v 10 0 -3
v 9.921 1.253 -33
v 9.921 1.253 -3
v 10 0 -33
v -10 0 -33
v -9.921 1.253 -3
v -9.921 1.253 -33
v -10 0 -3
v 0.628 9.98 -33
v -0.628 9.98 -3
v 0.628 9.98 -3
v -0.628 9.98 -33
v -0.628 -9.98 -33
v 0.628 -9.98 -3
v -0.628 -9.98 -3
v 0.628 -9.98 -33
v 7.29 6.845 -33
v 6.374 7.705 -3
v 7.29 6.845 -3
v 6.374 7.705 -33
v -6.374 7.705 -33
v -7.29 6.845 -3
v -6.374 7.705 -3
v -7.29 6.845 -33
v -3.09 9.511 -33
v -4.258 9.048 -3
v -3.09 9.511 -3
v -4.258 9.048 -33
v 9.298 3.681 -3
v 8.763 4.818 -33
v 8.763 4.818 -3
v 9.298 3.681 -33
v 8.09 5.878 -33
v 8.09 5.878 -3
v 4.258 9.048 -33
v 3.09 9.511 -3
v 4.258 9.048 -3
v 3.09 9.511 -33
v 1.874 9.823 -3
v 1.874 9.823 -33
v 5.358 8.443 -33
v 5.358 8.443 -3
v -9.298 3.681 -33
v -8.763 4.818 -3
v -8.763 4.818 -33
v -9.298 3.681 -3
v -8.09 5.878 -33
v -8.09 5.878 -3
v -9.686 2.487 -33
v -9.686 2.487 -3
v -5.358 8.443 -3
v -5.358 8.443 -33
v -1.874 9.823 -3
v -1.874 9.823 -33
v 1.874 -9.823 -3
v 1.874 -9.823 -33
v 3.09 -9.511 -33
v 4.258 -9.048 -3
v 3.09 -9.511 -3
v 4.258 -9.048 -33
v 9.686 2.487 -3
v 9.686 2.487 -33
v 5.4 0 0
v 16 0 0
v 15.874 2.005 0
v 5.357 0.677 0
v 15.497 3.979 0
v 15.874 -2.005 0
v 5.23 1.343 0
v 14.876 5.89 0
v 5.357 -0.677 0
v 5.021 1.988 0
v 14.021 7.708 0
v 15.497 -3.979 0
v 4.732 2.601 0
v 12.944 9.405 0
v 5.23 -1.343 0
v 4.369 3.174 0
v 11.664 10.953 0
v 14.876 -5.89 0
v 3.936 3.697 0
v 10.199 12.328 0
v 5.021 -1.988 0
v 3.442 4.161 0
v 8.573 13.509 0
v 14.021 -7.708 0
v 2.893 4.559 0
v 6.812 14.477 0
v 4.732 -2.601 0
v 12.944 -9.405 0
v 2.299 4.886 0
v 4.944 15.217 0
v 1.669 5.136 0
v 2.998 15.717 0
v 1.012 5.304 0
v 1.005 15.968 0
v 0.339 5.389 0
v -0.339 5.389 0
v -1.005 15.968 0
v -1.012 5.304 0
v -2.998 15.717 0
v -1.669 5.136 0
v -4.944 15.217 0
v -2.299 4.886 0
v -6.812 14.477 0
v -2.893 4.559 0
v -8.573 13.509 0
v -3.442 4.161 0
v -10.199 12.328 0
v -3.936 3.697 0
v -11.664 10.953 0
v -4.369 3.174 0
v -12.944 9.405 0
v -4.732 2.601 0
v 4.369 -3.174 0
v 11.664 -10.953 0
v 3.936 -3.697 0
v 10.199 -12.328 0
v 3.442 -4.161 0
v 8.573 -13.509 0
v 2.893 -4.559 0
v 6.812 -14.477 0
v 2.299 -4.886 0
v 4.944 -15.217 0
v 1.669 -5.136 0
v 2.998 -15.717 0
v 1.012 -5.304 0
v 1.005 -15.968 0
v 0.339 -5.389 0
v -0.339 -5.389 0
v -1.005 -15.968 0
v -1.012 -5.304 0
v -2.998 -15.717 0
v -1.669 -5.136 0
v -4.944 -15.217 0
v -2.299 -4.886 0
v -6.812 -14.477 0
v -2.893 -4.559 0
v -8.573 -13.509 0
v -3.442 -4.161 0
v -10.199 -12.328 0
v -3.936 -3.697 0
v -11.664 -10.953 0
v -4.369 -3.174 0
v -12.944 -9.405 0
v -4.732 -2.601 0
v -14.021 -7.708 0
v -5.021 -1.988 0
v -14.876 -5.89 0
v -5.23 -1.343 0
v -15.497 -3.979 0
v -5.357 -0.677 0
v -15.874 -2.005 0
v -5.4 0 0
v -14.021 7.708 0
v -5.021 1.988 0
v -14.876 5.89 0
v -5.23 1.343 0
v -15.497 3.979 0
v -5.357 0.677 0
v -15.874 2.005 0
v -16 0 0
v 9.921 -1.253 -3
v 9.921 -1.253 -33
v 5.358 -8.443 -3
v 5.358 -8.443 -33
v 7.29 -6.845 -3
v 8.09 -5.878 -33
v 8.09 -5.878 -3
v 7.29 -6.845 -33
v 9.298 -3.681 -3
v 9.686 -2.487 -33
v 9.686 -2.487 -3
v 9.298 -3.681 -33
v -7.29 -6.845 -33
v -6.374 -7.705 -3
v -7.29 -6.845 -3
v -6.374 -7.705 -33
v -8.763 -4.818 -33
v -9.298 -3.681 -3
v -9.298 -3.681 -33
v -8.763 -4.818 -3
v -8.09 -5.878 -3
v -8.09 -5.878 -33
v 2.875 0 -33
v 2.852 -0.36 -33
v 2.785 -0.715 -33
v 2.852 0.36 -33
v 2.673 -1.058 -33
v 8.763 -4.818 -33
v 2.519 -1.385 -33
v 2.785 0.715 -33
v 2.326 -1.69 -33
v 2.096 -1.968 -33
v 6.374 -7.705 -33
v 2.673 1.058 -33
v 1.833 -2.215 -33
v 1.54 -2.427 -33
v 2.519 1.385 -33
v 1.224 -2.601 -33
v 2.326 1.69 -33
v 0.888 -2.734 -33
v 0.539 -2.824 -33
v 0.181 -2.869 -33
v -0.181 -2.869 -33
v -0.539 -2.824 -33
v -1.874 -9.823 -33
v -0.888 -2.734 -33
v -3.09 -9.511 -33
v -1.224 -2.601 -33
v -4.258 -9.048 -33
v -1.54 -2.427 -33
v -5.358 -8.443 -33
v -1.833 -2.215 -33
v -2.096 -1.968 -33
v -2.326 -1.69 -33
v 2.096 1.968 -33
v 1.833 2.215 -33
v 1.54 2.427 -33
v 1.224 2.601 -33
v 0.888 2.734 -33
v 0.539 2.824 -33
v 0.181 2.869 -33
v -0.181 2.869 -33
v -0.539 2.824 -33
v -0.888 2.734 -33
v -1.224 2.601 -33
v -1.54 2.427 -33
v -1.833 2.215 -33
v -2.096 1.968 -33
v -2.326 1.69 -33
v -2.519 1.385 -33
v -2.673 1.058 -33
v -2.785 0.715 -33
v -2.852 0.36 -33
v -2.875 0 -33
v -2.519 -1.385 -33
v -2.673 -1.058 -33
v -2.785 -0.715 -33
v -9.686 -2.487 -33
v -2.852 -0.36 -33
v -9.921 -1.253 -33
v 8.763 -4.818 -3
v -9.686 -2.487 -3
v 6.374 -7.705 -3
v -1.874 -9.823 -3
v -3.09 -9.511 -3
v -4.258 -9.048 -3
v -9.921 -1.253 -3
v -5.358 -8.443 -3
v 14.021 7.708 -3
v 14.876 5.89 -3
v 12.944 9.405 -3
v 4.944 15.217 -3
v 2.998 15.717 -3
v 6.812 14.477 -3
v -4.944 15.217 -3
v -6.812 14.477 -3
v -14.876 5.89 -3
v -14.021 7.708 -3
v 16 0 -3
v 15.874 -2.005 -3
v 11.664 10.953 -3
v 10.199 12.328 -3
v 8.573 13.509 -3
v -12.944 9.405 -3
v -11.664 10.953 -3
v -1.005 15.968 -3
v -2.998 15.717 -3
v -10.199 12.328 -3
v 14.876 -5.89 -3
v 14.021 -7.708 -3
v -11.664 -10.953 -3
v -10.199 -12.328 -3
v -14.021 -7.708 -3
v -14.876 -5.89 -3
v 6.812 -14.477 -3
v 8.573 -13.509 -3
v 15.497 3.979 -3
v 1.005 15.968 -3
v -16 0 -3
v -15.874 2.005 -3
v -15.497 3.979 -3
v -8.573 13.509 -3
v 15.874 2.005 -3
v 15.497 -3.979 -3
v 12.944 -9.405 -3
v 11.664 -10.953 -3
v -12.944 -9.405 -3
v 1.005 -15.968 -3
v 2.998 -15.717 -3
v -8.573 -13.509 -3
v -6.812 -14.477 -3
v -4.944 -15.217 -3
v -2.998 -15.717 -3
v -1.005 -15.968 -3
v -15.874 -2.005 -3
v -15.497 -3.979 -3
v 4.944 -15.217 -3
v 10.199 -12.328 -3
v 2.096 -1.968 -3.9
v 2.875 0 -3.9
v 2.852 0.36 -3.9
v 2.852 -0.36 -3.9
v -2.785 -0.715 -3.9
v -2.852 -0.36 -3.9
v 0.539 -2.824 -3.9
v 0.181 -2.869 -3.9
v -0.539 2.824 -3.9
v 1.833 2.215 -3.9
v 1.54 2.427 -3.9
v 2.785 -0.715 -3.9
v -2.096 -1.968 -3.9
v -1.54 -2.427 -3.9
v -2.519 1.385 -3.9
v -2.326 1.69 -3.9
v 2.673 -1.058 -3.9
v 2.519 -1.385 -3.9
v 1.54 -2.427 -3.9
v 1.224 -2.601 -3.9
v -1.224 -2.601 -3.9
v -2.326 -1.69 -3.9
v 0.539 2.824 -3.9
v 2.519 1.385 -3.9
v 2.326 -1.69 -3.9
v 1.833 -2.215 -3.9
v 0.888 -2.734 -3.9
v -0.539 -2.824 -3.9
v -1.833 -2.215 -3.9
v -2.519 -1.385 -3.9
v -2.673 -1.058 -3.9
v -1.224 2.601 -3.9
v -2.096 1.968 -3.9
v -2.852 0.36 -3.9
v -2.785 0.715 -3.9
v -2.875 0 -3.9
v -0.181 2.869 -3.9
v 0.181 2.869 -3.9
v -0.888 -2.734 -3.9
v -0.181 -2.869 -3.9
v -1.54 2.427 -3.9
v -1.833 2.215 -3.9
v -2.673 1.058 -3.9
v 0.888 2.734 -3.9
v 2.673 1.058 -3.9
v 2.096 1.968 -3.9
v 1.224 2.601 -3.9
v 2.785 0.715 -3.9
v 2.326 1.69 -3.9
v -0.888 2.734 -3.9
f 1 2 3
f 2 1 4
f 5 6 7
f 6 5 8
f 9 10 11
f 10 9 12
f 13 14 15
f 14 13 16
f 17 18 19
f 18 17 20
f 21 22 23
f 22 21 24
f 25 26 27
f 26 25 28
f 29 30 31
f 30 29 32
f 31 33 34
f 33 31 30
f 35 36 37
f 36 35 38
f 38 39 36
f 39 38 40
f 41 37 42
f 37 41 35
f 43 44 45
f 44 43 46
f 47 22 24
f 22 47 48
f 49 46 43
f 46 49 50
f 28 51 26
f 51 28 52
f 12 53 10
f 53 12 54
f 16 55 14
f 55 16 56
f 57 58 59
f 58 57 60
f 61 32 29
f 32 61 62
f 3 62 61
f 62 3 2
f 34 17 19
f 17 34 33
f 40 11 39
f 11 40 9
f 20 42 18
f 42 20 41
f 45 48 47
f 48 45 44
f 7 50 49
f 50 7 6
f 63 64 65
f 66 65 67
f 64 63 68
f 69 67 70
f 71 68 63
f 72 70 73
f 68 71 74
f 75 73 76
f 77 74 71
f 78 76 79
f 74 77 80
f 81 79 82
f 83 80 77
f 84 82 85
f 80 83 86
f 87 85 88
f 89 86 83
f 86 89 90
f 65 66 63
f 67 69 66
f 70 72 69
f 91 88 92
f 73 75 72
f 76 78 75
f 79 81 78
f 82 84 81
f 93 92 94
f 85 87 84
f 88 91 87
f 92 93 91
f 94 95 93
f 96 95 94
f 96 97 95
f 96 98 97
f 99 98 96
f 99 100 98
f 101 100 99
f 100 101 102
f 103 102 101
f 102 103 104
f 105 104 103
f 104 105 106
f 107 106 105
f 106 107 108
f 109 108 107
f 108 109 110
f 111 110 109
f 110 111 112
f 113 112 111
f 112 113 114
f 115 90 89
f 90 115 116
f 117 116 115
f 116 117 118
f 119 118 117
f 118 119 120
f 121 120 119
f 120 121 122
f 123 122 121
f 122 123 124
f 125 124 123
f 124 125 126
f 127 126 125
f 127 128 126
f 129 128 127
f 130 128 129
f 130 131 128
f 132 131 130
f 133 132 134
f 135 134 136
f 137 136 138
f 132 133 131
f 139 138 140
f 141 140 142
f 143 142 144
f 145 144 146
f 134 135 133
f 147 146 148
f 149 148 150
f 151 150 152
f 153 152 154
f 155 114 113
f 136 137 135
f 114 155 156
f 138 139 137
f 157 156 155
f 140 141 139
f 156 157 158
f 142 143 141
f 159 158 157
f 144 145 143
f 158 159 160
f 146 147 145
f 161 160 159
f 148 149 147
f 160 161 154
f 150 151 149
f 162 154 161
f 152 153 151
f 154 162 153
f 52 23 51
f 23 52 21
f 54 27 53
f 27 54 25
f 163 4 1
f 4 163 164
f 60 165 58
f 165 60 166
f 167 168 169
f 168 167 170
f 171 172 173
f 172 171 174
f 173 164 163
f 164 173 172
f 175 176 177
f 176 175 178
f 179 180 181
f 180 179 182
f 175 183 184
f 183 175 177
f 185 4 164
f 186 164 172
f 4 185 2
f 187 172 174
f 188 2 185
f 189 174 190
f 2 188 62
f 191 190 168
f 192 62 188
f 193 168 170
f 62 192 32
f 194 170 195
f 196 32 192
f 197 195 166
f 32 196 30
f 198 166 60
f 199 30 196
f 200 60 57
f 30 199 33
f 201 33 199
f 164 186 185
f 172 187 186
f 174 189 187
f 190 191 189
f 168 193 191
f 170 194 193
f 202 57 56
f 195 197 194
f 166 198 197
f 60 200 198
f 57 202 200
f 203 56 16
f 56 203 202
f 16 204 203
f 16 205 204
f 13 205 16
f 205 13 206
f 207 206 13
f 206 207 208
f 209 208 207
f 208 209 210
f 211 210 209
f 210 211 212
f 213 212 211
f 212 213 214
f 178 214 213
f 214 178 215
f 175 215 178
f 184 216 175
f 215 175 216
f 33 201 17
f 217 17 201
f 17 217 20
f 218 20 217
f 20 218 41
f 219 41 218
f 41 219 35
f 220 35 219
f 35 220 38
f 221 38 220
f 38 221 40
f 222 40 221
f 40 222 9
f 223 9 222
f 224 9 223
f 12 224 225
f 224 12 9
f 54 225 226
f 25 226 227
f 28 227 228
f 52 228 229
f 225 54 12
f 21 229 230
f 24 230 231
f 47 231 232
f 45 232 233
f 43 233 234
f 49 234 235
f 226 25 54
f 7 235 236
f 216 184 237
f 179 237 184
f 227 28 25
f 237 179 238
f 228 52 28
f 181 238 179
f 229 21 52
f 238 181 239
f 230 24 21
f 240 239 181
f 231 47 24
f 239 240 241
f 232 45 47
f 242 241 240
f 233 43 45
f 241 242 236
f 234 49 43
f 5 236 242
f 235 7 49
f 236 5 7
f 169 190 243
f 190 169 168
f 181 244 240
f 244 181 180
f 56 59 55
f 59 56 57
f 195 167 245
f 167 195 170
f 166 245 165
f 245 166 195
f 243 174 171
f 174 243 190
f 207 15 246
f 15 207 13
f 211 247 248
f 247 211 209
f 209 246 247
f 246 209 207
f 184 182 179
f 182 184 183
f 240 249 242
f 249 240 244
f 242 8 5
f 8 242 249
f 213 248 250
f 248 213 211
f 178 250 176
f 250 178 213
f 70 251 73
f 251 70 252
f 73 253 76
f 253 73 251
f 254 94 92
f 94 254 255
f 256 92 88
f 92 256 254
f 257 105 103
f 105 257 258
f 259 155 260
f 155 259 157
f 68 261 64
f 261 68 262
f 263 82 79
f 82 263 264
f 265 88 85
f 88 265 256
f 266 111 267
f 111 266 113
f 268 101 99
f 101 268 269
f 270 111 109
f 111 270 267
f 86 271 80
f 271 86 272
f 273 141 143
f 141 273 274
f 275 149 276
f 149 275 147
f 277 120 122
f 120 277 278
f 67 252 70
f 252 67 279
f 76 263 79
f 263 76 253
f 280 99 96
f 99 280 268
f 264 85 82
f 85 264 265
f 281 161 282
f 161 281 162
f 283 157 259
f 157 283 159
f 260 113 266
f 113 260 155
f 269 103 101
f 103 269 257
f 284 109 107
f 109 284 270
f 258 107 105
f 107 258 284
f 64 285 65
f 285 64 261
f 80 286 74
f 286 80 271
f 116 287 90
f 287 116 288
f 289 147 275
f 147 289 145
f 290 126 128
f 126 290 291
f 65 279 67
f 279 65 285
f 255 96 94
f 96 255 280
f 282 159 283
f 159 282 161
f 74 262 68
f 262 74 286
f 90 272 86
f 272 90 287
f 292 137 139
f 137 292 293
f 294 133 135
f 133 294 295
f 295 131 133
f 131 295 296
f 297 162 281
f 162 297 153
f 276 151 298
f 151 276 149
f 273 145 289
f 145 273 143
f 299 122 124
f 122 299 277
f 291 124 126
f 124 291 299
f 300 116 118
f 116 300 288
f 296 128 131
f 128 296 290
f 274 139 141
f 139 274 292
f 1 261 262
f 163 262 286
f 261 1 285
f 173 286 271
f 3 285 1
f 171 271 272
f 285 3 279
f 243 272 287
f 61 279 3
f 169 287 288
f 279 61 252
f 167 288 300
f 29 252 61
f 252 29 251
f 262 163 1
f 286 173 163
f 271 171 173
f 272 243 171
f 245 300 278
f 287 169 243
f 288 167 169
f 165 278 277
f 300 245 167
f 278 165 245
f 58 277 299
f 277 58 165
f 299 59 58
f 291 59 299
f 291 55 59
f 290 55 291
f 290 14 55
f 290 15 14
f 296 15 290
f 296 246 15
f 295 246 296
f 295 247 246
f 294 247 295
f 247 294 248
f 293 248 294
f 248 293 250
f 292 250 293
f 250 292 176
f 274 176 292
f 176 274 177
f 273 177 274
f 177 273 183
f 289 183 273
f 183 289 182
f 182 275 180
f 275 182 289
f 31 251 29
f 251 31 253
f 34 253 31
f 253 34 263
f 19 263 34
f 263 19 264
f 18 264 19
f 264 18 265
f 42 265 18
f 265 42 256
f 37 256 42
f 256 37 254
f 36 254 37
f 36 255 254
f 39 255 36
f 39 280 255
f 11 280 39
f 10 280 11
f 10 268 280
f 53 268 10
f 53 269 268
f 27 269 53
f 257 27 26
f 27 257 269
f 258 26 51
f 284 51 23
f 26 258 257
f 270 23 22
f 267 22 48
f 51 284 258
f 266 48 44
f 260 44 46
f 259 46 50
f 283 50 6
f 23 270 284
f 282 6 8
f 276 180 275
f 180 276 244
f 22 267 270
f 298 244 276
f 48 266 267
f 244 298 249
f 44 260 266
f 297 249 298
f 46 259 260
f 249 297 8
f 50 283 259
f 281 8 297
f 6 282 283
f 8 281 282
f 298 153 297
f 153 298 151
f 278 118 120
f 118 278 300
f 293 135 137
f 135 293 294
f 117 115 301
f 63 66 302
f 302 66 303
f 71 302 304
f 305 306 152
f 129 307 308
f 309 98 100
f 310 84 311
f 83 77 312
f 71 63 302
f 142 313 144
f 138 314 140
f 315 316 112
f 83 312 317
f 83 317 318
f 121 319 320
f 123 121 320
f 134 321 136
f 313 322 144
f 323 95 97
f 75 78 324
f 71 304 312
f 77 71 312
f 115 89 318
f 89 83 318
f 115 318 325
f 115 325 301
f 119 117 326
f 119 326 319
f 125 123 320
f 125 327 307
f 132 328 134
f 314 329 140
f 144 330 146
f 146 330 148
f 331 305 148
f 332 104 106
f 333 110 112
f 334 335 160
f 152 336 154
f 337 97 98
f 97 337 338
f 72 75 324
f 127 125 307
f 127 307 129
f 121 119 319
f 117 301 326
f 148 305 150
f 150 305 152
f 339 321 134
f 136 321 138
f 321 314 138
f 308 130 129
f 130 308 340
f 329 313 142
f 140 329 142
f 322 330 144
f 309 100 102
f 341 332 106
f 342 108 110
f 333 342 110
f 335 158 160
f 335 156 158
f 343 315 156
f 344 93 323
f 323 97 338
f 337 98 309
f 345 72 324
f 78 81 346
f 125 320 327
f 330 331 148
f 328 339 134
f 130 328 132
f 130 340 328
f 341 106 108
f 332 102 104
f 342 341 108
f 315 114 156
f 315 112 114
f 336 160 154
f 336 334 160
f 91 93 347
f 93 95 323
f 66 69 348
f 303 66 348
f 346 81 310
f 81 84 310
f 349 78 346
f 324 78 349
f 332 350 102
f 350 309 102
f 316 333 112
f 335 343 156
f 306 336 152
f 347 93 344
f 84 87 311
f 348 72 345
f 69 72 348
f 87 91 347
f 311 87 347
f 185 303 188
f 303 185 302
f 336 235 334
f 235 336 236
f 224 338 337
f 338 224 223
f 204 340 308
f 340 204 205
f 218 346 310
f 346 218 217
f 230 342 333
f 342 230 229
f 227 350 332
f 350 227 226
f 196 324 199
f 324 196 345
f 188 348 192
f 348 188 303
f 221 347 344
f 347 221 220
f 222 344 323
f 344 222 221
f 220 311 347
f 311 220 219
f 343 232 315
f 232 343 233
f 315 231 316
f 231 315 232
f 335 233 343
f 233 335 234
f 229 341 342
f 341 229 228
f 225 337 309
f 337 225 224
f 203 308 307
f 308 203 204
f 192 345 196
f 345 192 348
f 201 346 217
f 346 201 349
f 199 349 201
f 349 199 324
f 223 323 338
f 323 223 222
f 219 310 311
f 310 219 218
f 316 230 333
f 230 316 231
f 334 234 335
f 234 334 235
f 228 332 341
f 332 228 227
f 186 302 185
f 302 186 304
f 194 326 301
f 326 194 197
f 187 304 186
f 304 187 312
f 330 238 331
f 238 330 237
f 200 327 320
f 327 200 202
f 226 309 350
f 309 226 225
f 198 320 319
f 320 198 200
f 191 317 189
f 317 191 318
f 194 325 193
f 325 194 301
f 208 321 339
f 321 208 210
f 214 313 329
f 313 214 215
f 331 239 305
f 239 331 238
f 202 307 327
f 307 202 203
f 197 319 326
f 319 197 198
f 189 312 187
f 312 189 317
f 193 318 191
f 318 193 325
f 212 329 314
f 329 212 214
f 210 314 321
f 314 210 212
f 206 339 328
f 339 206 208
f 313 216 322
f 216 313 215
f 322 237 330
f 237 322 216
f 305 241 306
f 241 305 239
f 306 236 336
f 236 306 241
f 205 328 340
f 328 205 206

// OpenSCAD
$fn = 50;


difference() {
	union() {
		translate(v = [0, 0, -33.0000000000]) {
			cylinder(h = 33, r = 10.0000000000);
		}
		translate(v = [0, 0, -3.0000000000]) {
			cylinder(h = 3, r = 16.0000000000);
		}
	}
	union() {
		translate(v = [0, 0, 0]) {
			rotate(a = [0, 0, 0]) {
				difference() {
					union() {
						#translate(v = [0, 0, -33.0000000000]) {
							cylinder(h = 33, r = 2.6000000000);
						}
						#translate(v = [0, 0, -3.9000000000]) {
							cylinder(h = 3.9000000000, r1 = 2.8750000000, r2 = 5.4000000000);
						}
						#translate(v = [0, 0, -33.0000000000]) {
							cylinder(h = 33, r = 2.8750000000);
						}
						#translate(v = [0, 0, -33.0000000000]) {
							cylinder(h = 33, r = 2.6000000000);
						}
					}
					union();
				}
			}
		}
	}
}
